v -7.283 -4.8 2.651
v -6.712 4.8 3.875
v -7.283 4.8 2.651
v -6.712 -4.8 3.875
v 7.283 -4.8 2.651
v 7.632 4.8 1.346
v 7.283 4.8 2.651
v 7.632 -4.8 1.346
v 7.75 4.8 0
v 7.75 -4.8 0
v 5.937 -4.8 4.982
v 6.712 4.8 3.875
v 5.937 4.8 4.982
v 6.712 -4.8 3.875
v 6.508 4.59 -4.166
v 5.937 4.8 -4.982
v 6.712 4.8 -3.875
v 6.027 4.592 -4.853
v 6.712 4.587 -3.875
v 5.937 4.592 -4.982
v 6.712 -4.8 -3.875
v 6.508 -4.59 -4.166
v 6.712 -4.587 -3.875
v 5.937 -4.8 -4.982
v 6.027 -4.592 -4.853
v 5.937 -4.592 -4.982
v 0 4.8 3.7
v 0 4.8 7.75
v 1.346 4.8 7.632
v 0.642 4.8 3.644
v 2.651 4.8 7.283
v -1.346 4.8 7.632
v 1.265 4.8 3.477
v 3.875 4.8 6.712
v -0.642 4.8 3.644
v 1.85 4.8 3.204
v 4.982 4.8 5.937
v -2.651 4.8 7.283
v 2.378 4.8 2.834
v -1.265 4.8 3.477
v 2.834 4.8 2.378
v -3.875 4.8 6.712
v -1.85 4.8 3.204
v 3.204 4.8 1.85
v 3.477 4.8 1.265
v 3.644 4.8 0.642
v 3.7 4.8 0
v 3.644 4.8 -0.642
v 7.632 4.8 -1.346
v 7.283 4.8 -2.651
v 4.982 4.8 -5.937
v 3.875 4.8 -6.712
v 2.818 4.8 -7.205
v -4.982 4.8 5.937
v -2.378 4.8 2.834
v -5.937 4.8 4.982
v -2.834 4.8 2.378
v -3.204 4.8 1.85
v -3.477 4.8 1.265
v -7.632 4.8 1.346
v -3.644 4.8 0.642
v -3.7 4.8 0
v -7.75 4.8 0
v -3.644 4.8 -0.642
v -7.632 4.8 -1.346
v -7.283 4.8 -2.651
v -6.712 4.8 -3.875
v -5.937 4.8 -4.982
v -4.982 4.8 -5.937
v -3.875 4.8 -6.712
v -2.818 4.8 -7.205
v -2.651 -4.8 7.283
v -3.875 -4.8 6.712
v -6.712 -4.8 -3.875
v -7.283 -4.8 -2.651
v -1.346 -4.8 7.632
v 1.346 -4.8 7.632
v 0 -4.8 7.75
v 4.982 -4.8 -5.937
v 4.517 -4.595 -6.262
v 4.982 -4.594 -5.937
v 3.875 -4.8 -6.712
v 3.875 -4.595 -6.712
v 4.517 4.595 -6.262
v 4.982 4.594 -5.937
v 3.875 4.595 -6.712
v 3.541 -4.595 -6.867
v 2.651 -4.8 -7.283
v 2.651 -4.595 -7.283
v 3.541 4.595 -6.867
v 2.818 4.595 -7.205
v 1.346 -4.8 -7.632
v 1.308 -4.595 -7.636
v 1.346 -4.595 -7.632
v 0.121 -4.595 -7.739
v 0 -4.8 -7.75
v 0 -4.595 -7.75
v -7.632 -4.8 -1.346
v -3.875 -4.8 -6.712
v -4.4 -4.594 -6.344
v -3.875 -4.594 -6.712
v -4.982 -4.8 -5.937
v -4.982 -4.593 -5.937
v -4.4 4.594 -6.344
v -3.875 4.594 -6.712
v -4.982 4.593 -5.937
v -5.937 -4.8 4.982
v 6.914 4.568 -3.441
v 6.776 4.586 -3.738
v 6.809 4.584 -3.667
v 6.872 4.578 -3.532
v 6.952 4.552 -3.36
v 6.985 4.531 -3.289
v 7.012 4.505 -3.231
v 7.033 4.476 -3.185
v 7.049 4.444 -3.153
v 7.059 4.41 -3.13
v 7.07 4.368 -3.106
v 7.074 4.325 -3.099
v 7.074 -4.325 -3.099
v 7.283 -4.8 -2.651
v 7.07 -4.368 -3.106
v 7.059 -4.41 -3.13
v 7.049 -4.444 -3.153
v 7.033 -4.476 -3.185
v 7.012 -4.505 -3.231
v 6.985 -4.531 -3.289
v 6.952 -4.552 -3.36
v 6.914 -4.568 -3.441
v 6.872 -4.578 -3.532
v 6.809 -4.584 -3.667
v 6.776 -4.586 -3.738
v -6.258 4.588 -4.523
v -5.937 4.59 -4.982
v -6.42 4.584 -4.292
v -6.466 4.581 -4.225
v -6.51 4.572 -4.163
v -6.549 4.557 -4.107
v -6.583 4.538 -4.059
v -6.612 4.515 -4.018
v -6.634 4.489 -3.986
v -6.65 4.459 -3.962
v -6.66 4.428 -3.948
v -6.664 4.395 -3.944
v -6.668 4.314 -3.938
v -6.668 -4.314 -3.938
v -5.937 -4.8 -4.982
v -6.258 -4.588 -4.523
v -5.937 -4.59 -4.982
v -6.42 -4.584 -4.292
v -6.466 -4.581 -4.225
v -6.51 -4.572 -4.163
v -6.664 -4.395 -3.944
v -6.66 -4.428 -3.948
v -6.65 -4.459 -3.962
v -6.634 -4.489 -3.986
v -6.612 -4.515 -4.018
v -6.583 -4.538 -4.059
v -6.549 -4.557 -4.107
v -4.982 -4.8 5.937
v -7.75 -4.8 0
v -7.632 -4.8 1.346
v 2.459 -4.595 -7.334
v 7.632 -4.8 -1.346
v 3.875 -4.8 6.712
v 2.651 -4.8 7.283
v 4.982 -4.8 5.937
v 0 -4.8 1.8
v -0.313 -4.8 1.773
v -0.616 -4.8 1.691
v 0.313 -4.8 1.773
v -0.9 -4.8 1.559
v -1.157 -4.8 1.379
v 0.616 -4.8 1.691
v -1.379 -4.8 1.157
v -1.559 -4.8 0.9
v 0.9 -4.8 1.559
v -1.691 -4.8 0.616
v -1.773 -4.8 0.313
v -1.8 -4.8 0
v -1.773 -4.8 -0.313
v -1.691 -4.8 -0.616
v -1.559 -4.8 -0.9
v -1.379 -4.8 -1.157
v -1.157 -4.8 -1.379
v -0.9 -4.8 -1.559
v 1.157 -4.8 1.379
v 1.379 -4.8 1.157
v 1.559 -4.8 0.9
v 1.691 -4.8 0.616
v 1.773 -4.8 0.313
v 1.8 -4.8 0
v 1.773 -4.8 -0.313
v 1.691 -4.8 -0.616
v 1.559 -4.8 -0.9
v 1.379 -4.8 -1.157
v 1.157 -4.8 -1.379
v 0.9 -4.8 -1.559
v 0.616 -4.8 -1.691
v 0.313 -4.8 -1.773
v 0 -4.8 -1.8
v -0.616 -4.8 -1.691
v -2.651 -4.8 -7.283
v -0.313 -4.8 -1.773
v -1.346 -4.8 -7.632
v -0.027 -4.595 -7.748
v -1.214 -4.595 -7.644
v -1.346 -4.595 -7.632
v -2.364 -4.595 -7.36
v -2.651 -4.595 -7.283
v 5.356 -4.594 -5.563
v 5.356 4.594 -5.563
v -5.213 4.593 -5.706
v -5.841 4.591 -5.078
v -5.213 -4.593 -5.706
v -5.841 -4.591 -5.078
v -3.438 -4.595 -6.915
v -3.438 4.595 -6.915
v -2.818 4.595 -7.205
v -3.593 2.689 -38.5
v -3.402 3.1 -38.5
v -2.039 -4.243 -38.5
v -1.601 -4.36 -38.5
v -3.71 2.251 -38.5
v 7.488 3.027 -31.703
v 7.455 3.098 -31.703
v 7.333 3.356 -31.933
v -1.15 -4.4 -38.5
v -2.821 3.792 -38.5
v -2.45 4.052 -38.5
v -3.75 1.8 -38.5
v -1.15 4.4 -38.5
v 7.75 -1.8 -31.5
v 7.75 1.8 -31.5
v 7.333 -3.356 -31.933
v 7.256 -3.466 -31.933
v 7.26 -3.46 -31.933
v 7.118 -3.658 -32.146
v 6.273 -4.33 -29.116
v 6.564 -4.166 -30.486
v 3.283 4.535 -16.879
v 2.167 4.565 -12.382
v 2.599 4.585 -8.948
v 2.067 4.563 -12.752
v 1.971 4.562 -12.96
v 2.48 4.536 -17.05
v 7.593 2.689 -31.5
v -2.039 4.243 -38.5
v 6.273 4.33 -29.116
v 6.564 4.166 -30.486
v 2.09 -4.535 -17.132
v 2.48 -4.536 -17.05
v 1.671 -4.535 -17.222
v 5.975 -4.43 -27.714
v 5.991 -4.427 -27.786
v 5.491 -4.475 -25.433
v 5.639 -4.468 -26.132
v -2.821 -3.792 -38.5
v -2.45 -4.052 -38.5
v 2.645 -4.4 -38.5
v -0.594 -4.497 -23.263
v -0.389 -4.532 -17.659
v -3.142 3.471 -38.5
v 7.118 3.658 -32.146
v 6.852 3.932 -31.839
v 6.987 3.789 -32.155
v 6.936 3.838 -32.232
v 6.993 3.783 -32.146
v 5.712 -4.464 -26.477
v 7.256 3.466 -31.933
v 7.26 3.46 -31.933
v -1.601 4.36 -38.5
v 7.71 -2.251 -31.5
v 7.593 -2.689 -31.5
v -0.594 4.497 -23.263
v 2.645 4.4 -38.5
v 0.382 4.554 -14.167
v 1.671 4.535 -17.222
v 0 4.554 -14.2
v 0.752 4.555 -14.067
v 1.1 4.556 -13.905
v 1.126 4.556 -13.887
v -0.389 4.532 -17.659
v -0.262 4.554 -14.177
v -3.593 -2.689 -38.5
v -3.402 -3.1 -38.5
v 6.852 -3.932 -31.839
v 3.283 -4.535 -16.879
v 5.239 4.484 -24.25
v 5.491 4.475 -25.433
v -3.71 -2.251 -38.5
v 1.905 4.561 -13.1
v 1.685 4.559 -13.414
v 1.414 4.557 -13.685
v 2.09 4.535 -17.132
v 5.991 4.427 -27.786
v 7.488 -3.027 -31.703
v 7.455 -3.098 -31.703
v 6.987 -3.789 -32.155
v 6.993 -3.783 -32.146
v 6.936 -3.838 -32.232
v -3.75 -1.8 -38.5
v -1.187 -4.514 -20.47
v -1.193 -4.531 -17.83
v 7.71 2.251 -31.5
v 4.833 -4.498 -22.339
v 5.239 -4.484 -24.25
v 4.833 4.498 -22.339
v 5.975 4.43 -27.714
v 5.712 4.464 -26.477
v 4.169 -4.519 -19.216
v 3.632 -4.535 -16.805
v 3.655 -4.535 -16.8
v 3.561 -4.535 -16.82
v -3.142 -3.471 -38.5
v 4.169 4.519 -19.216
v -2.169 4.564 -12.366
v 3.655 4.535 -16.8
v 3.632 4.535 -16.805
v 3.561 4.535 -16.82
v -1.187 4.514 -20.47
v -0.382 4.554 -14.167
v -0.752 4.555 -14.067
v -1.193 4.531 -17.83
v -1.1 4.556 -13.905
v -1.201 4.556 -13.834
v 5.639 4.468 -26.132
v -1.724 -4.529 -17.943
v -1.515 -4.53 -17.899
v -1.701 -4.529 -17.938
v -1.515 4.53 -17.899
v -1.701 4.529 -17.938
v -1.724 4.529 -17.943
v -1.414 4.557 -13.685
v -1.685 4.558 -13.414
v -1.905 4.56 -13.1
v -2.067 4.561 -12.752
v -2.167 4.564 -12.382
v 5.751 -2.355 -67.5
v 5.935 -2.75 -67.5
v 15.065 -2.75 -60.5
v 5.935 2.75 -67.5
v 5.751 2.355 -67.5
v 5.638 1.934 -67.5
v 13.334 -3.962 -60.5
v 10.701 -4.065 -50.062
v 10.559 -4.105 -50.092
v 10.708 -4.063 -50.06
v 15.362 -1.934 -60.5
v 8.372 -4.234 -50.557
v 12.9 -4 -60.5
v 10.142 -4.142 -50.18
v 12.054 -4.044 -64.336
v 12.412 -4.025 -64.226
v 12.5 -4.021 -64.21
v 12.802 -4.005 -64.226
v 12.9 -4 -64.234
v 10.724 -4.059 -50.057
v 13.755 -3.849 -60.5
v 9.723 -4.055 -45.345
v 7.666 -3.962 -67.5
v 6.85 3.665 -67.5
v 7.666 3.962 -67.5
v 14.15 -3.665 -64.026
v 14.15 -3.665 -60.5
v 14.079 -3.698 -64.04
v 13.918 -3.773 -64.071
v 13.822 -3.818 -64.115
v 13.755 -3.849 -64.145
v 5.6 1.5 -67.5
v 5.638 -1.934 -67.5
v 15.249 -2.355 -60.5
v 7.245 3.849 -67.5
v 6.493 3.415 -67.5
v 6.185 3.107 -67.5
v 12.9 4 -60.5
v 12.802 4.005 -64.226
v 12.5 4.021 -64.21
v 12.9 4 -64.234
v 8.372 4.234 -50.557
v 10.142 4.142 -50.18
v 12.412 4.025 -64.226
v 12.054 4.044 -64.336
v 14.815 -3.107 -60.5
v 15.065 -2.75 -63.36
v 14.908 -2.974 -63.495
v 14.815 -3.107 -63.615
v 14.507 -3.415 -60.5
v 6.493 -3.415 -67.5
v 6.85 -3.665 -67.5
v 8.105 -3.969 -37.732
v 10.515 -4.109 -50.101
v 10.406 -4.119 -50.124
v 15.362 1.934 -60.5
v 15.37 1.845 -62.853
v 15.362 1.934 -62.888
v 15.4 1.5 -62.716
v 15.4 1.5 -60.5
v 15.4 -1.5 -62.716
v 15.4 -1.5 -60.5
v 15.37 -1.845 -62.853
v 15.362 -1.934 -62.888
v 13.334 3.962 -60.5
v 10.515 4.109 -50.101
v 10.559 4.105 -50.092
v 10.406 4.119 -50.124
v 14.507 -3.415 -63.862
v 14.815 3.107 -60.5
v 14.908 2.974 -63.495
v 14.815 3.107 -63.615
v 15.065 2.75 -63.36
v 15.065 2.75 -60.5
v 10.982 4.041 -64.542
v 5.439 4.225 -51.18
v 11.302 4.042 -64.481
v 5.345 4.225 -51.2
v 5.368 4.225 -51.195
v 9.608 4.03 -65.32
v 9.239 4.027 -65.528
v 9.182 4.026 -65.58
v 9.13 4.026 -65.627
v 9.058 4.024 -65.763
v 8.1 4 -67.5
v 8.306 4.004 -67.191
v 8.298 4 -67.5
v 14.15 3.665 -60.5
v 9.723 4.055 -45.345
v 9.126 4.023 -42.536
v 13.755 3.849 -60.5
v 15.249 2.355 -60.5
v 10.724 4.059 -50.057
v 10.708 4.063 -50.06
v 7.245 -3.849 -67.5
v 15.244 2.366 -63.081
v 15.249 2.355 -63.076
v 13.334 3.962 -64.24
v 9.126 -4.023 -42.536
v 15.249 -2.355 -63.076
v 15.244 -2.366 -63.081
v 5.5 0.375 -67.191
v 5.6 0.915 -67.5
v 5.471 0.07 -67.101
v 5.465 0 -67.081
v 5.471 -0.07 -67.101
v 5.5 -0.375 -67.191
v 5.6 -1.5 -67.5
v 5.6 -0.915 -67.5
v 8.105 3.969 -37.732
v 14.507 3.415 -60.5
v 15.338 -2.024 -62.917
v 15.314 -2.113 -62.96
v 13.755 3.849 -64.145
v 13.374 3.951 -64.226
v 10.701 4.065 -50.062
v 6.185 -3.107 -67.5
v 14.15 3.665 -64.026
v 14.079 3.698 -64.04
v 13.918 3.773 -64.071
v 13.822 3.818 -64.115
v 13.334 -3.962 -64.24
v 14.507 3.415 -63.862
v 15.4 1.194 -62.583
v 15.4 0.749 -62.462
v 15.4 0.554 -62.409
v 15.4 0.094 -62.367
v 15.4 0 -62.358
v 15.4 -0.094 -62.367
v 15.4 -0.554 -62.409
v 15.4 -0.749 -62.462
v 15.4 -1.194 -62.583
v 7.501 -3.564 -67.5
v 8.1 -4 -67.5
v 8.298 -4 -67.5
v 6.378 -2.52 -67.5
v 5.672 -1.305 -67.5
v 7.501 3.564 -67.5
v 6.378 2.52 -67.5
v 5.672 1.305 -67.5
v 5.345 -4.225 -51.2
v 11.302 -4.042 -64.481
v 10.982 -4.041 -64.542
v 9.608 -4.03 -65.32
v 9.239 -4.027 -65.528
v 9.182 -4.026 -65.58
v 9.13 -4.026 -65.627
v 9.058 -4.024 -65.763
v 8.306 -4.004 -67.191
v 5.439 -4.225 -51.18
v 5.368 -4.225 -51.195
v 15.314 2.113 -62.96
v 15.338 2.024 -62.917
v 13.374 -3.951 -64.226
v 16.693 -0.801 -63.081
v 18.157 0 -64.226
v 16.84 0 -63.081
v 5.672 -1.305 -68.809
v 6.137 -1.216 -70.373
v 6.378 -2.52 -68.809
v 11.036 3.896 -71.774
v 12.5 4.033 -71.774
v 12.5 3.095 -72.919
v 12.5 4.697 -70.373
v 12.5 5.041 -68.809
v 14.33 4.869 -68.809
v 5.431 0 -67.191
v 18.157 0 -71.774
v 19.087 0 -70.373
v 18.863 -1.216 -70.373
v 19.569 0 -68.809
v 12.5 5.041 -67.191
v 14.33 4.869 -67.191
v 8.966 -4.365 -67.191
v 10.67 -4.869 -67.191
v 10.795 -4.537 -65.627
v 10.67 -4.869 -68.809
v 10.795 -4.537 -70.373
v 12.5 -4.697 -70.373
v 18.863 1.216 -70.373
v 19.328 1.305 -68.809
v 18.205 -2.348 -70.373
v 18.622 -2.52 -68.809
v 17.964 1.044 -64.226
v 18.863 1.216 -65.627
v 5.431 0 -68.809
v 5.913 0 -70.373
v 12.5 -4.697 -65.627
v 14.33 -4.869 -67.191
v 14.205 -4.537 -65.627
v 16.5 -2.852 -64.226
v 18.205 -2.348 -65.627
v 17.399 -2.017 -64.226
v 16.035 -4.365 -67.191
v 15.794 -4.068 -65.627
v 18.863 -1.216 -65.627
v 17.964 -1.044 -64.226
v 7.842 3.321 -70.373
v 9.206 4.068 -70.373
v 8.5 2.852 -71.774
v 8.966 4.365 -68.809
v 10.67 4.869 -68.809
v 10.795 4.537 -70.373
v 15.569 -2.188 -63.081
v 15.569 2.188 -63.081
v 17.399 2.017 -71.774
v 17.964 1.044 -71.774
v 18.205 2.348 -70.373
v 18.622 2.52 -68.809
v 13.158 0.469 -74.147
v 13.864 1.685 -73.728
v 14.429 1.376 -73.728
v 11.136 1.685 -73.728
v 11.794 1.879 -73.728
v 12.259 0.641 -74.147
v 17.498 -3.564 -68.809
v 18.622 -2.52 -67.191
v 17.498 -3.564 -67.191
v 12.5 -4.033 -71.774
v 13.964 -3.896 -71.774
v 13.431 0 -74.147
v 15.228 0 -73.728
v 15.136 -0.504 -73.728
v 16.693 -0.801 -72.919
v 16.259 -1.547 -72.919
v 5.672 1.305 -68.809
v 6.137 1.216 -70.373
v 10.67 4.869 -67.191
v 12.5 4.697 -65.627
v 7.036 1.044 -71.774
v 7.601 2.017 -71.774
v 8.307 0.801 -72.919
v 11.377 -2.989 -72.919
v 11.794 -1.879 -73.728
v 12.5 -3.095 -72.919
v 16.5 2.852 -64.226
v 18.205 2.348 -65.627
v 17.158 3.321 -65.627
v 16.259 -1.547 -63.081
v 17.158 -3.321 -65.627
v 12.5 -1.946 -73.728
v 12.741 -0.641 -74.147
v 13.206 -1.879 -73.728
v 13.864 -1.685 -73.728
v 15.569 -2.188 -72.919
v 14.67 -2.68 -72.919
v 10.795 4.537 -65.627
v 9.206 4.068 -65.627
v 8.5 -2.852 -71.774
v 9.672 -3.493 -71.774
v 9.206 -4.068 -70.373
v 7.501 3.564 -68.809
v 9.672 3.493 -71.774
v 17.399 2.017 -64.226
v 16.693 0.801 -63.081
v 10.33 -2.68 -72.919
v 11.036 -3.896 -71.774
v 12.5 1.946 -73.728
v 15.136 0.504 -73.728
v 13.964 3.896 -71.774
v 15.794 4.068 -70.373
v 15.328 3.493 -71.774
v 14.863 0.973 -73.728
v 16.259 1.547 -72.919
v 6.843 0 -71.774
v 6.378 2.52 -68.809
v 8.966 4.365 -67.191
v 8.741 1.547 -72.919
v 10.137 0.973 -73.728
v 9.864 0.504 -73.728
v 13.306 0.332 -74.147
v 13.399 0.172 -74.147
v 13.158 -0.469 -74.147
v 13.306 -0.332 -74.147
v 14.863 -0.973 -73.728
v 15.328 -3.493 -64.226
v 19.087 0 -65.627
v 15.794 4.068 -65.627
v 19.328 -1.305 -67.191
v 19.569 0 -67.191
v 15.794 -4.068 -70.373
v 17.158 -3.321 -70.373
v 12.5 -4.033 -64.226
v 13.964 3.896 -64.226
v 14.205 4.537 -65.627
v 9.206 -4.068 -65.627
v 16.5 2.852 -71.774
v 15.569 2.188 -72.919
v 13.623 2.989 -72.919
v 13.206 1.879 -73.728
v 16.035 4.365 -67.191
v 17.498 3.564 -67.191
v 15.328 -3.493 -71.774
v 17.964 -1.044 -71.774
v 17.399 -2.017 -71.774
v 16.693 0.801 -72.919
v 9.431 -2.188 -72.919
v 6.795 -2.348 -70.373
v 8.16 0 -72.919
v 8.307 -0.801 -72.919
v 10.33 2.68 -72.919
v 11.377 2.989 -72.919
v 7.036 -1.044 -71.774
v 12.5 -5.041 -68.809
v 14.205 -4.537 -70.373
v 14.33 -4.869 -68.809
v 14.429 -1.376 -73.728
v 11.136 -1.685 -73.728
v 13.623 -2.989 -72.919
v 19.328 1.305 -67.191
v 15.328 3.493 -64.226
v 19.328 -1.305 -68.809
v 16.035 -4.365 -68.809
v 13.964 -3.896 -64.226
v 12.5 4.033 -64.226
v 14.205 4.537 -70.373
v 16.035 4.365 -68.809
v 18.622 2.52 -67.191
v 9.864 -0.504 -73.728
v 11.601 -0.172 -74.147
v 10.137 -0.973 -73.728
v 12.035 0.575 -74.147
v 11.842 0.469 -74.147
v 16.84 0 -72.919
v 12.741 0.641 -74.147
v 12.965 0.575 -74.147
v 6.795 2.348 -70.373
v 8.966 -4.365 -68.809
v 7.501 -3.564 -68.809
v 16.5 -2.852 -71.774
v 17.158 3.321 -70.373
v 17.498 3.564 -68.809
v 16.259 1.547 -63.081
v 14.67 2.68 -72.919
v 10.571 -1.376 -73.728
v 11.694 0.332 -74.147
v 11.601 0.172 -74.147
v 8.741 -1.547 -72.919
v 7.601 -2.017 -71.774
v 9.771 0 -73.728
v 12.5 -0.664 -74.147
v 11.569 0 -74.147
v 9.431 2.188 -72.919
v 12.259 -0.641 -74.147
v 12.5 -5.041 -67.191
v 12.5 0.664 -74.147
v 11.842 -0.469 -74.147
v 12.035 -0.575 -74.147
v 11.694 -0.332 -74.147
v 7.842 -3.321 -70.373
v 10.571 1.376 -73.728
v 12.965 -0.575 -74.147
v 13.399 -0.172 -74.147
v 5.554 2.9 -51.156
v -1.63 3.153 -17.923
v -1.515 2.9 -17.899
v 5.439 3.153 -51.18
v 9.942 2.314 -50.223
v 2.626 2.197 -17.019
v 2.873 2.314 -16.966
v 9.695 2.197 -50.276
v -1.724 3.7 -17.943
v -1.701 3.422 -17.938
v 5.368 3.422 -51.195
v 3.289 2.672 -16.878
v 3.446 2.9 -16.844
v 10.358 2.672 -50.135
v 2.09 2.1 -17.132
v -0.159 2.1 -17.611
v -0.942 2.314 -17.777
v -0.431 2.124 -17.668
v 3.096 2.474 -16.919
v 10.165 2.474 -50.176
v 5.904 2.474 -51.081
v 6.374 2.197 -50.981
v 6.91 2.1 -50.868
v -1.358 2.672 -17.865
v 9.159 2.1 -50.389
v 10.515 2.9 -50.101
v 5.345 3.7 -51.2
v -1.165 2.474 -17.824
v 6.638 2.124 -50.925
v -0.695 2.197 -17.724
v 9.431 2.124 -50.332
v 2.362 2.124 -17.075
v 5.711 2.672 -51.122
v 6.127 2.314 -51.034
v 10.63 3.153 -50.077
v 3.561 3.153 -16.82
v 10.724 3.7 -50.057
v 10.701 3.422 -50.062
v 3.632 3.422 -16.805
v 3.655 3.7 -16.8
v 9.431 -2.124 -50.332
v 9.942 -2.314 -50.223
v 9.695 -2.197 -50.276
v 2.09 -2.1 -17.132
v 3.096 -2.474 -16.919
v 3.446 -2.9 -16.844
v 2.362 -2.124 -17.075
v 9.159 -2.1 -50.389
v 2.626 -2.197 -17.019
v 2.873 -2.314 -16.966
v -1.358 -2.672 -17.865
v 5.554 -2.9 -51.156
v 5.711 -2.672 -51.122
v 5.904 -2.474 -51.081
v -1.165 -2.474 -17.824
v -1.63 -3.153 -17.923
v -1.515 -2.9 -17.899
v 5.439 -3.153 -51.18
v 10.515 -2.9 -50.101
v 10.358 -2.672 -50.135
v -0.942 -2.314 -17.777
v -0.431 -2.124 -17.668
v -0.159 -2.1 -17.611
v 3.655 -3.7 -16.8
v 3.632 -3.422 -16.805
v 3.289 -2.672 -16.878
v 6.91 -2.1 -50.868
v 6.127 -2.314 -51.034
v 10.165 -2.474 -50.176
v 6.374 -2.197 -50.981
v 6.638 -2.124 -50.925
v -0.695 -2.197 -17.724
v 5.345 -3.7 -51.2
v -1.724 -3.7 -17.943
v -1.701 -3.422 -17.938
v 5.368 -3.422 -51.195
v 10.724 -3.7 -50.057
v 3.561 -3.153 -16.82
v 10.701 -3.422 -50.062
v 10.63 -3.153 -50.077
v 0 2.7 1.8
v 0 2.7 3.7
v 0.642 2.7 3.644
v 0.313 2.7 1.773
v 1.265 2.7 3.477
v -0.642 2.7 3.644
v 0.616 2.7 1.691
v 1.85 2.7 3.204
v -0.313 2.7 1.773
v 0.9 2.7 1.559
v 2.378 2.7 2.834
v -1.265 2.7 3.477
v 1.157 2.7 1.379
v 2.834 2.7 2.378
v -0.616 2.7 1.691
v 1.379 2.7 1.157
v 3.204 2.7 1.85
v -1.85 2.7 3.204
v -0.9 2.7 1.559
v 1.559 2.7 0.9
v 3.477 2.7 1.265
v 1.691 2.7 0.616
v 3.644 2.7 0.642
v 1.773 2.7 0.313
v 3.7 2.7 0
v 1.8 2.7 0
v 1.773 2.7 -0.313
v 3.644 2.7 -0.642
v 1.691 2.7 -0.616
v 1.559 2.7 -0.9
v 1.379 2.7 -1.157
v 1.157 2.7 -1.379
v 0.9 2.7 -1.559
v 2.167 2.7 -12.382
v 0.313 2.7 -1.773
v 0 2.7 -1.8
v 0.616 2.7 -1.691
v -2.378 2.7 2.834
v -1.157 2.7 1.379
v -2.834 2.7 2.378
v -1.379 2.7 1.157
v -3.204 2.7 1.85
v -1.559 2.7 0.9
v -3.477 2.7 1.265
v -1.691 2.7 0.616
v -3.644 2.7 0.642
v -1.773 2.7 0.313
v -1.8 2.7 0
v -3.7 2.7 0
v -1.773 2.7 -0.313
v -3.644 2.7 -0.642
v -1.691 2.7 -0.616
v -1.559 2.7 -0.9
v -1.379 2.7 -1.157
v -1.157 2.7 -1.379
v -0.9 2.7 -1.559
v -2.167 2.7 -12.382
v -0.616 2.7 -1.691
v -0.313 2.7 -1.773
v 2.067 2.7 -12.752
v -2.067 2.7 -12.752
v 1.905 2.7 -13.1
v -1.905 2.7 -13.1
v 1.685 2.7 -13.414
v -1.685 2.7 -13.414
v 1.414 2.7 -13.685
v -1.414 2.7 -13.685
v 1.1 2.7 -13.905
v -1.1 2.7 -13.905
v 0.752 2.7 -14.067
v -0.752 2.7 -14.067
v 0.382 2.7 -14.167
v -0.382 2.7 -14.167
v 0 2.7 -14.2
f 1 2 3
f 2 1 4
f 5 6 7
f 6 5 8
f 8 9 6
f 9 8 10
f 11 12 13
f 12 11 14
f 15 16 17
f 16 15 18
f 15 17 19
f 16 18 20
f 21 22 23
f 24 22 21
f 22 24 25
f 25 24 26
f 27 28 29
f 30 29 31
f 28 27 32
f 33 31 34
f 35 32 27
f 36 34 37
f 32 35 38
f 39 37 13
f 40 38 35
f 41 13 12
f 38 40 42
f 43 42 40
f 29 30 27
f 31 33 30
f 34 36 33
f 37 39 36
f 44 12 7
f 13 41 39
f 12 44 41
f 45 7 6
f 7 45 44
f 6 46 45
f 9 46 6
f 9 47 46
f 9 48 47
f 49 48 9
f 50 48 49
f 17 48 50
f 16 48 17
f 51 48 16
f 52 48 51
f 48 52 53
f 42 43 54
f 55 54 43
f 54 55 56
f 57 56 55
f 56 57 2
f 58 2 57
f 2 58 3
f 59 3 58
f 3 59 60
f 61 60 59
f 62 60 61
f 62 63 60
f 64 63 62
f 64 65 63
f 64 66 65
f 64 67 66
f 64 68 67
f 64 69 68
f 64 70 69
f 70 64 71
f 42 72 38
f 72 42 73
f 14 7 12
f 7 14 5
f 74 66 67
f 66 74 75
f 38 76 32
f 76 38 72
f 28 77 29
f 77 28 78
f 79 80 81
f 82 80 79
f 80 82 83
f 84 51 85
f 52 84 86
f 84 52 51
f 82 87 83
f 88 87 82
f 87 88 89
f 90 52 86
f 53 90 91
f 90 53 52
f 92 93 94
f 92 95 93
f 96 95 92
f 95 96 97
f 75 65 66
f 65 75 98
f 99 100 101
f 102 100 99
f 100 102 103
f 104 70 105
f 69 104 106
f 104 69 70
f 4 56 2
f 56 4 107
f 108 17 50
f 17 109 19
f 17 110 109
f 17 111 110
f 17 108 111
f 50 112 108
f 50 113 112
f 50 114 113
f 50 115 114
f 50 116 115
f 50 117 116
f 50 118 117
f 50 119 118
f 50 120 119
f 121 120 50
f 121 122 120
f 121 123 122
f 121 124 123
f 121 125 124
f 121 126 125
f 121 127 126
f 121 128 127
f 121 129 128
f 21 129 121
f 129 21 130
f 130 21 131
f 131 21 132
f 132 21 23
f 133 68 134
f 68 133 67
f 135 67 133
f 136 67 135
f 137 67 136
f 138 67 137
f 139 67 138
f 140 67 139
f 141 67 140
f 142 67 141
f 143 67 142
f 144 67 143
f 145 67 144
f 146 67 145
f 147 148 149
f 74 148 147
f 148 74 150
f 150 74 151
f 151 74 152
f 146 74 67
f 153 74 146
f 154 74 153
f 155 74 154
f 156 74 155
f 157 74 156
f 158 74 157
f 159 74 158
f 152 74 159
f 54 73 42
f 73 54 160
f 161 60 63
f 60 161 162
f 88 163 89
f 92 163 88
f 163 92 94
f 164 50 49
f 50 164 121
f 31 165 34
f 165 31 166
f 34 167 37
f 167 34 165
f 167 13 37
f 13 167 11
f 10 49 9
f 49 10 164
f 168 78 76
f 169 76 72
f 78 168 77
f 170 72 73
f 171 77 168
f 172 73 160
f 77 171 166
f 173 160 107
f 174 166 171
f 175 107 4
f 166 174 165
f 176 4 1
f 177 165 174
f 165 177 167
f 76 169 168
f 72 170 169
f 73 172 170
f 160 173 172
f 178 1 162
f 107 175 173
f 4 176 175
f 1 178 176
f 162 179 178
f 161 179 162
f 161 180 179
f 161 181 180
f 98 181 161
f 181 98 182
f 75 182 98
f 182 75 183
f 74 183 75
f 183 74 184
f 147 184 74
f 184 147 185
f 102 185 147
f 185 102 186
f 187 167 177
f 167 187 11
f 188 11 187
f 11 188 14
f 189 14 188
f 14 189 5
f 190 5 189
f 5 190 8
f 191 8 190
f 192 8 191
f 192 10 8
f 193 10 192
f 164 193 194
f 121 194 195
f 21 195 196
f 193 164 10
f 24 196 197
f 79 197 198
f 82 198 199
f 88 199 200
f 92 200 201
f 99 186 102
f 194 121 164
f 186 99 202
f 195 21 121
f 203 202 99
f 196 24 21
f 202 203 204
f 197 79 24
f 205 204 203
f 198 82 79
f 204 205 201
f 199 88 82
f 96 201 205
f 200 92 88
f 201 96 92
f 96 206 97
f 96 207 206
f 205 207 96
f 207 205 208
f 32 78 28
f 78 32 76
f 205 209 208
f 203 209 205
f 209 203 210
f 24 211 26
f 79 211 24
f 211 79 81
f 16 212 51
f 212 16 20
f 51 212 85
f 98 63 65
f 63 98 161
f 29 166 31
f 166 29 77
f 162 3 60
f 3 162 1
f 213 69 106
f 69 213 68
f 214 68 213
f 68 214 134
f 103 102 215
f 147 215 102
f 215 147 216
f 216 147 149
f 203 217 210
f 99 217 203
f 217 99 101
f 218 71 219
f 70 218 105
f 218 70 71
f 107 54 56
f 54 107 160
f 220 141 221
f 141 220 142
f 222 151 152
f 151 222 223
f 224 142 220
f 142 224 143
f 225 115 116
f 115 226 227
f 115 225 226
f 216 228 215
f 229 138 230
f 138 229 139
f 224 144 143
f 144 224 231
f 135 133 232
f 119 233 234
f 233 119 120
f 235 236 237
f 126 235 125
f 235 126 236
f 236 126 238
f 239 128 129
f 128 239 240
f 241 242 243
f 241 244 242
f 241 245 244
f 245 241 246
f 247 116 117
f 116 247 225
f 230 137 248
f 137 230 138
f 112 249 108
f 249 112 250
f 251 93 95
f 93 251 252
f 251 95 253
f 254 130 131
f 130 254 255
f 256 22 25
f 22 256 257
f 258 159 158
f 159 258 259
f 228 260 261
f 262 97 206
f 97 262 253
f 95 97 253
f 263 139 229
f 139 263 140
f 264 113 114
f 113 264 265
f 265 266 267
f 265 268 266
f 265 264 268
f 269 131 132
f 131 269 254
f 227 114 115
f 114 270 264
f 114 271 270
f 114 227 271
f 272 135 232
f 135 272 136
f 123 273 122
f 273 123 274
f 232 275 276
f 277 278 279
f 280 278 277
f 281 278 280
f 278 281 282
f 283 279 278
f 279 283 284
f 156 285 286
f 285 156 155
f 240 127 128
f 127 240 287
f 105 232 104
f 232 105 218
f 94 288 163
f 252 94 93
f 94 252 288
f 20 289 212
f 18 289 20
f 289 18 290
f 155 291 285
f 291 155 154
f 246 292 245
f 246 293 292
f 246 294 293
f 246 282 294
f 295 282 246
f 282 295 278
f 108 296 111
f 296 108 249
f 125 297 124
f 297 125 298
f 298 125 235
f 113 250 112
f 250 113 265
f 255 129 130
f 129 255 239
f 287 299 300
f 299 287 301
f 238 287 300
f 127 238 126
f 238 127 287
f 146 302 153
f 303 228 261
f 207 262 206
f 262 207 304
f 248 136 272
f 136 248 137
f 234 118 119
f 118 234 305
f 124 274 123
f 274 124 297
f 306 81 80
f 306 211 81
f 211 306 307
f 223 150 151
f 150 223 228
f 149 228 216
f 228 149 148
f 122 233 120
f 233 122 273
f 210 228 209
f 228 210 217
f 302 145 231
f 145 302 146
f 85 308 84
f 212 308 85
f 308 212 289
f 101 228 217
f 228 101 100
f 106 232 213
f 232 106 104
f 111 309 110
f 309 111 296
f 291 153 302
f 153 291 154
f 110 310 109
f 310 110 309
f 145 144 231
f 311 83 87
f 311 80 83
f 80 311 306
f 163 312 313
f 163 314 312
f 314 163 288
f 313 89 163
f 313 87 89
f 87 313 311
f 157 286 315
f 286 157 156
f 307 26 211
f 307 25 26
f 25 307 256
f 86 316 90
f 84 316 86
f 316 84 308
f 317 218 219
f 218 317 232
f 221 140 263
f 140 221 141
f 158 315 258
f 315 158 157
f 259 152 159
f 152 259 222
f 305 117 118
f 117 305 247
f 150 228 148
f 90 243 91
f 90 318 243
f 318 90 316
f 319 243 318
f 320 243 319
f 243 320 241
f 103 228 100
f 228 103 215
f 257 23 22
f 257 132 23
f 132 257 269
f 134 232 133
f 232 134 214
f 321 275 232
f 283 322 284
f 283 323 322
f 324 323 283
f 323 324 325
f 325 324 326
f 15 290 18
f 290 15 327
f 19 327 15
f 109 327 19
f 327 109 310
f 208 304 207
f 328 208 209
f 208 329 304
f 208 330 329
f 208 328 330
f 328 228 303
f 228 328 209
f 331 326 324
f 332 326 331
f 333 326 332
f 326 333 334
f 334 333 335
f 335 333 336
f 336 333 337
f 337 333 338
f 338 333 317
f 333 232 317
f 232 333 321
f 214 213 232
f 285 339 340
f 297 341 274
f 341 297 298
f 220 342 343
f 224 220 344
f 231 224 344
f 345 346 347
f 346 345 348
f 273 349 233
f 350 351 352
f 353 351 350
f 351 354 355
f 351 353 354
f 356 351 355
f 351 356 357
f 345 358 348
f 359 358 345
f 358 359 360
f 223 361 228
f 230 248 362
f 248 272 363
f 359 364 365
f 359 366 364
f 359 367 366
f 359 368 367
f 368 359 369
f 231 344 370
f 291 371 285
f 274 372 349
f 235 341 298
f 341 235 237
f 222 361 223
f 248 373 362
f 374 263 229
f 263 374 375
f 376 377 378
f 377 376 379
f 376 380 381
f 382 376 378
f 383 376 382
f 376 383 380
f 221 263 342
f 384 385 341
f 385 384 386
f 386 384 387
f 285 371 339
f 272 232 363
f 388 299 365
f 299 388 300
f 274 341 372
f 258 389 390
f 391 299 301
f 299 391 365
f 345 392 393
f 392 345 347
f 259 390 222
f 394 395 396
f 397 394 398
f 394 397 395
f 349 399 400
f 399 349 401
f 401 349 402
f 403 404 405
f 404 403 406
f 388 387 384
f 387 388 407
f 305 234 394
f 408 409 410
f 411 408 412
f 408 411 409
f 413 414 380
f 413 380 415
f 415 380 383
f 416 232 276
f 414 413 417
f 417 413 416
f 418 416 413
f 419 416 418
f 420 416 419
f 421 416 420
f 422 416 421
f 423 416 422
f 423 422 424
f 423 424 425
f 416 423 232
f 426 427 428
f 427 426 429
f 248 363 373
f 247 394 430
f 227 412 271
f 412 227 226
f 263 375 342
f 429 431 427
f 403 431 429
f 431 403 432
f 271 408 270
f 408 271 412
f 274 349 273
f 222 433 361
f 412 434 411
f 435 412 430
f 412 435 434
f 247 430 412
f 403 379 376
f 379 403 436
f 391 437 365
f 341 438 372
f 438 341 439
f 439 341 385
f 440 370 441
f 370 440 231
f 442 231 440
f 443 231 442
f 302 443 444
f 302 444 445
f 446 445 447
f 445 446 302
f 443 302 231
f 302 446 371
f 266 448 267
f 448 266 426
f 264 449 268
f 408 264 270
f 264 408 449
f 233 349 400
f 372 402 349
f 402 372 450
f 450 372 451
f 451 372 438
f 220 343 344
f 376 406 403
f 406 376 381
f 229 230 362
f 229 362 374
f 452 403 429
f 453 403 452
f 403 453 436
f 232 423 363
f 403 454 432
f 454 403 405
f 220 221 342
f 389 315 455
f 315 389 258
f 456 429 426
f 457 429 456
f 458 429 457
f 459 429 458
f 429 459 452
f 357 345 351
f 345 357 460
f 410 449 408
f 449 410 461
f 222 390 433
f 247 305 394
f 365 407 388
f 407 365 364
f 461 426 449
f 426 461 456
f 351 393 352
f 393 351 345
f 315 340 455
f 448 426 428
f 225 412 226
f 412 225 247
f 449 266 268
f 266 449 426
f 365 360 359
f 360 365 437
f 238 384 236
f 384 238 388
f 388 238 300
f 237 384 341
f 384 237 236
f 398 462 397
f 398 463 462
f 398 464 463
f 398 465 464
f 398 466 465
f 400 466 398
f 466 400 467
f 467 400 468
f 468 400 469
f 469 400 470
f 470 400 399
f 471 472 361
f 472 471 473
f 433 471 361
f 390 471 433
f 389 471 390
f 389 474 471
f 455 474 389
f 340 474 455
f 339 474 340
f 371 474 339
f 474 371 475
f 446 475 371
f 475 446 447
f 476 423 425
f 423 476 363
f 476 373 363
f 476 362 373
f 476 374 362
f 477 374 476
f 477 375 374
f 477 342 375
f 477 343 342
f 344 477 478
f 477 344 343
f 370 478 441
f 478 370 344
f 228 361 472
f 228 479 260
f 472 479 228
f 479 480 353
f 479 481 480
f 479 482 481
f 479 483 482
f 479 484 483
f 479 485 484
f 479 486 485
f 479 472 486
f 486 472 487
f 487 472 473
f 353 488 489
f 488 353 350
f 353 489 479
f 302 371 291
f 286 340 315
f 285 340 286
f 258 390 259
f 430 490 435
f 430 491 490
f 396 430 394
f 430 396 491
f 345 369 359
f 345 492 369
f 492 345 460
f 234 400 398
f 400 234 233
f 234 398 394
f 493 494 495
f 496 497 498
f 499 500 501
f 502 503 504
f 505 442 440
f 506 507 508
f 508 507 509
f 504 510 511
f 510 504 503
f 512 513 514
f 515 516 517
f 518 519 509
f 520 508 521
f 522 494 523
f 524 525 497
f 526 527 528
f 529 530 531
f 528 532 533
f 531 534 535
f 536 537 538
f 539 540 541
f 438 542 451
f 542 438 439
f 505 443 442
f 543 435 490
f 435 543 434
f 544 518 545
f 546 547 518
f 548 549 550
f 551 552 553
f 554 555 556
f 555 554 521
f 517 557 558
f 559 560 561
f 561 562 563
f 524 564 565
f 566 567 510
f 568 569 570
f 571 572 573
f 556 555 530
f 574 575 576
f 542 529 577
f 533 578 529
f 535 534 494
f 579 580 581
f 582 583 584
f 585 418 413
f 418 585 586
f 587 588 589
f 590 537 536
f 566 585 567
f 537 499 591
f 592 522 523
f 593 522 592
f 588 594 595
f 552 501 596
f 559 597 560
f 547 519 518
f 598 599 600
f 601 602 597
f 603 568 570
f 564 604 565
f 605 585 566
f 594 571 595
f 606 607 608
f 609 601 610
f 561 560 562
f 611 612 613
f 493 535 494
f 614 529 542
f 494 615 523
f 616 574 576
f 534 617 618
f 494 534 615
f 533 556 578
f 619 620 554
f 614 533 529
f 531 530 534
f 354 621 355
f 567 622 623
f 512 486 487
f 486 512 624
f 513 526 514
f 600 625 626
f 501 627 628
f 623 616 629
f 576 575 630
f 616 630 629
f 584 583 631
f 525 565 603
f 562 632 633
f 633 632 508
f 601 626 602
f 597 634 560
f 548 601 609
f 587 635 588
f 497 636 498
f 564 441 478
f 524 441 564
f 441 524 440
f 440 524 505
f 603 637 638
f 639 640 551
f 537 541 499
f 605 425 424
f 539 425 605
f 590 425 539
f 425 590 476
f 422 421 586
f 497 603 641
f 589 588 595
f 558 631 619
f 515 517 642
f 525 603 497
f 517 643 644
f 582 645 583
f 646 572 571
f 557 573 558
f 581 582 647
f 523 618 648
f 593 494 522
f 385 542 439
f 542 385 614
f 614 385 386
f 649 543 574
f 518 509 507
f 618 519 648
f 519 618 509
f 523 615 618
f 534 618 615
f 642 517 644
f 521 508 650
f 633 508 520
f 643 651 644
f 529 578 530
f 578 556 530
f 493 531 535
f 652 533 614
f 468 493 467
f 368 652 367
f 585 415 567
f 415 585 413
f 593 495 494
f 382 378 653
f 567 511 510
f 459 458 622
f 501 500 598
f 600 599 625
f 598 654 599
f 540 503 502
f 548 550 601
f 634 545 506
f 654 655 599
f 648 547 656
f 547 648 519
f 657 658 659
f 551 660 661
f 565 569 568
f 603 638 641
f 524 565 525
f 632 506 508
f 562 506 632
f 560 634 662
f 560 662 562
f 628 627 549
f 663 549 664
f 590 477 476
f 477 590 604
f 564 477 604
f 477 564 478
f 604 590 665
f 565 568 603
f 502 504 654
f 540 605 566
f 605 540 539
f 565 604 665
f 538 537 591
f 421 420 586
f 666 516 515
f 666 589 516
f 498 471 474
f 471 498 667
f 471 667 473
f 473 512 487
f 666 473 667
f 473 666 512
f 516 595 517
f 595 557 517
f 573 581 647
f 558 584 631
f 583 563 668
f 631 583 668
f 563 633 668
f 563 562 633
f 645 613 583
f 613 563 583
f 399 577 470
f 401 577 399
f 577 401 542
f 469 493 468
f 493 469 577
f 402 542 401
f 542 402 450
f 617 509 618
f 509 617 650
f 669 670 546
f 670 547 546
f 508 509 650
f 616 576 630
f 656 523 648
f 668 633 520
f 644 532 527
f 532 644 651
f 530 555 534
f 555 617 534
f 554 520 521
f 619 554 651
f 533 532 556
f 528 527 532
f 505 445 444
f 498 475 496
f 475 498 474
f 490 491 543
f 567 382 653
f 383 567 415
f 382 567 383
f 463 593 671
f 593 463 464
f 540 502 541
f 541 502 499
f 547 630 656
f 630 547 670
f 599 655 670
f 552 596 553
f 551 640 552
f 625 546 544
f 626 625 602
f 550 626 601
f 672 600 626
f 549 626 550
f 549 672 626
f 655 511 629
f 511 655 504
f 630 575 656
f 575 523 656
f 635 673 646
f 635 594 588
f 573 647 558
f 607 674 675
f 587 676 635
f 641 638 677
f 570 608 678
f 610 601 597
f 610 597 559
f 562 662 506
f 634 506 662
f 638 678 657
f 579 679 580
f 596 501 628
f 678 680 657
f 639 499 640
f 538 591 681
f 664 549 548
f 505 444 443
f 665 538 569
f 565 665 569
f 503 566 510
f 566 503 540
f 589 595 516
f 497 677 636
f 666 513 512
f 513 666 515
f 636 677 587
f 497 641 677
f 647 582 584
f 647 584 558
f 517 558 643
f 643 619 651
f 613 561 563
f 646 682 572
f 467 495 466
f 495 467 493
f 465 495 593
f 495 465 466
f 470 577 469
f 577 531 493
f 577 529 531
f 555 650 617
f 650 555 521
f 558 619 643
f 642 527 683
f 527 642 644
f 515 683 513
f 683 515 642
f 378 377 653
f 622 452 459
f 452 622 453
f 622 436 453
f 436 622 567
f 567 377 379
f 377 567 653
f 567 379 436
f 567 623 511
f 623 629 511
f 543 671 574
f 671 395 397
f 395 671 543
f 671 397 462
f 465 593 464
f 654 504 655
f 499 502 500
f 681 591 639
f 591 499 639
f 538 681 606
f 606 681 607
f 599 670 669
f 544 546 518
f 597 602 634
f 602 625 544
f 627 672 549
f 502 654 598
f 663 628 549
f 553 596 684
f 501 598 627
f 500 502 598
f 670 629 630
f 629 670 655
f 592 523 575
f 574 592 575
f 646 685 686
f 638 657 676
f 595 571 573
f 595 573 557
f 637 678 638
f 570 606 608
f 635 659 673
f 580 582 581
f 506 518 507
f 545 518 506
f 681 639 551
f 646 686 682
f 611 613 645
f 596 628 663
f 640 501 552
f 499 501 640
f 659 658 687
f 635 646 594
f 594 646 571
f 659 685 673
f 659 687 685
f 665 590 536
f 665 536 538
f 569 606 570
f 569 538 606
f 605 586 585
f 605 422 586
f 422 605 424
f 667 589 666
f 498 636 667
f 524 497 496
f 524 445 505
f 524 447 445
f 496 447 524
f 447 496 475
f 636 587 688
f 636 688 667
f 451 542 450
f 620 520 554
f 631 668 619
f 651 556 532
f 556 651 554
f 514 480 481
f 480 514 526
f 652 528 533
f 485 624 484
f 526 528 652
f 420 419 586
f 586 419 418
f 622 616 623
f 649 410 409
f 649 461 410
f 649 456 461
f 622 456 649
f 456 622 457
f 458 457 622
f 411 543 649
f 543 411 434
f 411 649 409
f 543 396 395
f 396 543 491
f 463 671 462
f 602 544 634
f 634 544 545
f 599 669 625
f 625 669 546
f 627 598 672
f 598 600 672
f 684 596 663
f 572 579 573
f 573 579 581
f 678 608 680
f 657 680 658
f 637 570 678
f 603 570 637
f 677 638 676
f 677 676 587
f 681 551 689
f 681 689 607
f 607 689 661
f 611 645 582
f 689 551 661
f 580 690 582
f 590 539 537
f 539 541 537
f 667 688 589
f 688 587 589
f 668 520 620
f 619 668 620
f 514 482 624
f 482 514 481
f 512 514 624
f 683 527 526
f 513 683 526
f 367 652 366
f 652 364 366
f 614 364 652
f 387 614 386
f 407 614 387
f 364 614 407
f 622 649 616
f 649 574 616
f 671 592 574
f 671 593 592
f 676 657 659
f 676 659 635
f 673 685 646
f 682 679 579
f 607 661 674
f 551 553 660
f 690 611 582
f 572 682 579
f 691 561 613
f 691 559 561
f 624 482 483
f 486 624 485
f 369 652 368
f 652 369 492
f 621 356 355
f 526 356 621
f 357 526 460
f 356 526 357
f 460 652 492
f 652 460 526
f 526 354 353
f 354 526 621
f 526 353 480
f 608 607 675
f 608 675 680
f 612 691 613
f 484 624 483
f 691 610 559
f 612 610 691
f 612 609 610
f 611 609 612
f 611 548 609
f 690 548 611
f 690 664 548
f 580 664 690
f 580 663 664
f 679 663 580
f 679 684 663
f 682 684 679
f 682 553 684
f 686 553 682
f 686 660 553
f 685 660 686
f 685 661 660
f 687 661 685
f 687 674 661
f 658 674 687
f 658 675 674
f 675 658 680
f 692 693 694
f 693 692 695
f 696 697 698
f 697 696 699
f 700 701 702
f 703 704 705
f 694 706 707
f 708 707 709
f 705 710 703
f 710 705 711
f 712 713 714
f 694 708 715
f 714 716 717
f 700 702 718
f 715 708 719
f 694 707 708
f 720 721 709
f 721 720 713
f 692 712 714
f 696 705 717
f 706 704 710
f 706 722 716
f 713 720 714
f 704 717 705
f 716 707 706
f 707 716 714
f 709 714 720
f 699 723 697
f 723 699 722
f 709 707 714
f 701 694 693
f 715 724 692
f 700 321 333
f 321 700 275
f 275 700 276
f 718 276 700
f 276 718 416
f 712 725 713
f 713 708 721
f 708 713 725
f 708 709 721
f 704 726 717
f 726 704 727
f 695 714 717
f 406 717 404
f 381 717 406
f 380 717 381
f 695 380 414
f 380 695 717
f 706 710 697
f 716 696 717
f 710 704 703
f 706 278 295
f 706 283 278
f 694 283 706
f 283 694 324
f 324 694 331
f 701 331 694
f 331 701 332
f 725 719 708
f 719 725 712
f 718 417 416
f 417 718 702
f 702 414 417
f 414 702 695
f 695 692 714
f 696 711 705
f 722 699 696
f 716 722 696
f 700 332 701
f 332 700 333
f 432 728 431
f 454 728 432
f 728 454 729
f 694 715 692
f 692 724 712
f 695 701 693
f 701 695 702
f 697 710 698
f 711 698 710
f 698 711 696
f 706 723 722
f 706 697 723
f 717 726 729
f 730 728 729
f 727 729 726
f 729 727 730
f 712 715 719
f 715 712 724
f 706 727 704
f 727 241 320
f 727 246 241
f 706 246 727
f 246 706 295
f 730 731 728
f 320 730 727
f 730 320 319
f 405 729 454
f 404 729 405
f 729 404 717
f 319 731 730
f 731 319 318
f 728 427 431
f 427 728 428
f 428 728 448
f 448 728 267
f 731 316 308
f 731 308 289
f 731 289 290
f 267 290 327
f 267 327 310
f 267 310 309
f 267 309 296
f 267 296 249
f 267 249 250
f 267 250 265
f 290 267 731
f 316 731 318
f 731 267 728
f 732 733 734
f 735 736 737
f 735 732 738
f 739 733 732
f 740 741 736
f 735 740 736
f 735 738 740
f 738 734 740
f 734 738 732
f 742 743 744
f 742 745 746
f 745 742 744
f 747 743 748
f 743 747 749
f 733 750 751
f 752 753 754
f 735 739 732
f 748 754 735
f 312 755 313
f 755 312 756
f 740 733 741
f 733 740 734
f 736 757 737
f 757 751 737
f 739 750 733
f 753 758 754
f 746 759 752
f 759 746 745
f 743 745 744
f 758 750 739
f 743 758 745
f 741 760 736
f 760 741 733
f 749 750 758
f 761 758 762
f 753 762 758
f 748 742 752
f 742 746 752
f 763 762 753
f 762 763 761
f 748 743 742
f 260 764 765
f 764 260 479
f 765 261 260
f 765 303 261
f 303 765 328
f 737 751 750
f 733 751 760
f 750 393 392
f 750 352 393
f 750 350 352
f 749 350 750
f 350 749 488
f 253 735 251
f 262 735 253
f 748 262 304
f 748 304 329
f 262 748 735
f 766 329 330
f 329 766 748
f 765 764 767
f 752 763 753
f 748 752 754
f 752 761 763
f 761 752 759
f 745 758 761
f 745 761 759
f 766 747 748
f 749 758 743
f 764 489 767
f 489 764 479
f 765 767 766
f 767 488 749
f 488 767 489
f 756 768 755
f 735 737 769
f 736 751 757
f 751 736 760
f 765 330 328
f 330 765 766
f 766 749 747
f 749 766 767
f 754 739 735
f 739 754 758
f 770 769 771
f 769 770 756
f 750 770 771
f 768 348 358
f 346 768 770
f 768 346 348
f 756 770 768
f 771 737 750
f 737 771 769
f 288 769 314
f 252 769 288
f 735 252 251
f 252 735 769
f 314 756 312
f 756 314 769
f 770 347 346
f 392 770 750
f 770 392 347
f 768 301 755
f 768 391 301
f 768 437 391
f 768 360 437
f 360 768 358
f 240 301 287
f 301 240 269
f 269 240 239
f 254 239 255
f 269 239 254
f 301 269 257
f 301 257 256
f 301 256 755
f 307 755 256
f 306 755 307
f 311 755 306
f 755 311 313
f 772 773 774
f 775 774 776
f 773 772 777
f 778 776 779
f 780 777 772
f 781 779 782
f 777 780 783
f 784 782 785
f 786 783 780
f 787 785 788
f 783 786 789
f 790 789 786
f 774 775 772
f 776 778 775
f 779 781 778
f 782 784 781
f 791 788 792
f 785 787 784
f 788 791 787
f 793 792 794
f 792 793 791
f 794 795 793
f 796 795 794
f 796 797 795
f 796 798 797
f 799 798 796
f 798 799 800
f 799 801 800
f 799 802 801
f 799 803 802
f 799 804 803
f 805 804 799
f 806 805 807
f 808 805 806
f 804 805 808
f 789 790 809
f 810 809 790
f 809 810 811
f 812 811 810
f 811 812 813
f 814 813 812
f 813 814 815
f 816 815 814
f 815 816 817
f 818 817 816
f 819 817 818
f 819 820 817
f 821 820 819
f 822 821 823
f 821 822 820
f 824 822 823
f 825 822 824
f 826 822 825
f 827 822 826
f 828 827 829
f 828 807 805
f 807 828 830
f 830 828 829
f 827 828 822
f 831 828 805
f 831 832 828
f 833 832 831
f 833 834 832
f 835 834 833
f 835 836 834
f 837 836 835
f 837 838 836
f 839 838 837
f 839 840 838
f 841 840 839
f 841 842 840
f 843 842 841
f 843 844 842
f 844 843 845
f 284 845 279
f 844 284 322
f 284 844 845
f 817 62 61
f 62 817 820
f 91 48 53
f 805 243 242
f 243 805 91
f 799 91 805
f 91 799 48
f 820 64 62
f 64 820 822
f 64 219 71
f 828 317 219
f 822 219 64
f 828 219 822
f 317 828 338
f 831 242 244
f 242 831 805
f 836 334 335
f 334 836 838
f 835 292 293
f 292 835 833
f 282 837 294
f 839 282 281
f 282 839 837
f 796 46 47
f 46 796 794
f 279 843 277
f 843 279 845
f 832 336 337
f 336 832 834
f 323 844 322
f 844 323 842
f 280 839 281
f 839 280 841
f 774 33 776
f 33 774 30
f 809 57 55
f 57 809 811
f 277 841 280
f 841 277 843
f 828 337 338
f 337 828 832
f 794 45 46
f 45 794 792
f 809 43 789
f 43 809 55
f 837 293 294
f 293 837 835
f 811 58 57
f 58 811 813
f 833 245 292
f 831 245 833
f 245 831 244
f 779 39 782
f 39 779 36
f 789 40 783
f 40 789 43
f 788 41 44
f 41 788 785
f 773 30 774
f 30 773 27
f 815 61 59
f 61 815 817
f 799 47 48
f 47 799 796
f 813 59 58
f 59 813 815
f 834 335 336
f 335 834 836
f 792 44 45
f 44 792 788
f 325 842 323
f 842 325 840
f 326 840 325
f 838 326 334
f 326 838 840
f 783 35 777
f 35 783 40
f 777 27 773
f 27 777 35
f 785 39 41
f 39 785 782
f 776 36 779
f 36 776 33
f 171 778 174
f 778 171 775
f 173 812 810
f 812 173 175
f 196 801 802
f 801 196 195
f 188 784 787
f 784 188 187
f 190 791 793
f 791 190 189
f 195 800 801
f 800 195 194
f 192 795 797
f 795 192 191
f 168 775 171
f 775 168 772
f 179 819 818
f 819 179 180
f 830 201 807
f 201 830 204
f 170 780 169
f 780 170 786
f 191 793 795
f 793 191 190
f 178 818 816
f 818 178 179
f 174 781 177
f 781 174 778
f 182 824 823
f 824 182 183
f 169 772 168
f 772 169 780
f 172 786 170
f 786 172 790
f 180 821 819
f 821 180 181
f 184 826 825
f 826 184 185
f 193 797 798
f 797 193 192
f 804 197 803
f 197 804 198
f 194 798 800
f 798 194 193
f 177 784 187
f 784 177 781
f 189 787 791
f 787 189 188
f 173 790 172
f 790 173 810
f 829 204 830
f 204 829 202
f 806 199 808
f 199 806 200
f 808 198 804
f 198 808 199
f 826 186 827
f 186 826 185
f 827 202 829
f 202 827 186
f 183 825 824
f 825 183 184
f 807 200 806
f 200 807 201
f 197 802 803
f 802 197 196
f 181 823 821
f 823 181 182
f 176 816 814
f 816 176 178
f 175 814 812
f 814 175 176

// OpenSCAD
// file: ../rnv1_params.scad
// RNV1 (Robotic Neural Vector 1) - Master Parametric Mechanical Specification
// Units: millimeters (mm)
// Coordinate Frame: +X Forward, +Y Left, +Z Up (Standing Neutral Pose, Floor = Z=0)

$fn = 36;

// --- FDM 3D Print Engineering Tolerances (0.4mm nozzle, PETG / PLA+) ---
WALL_T       = 2.0;    // Primary structural wall thickness (>= 1.6mm requirement)
RIB_T        = 1.8;    // Structural stiffening rib thickness
CLEARANCE    = 0.25;   // Standard FDM press/slip fit clearance
M2_PILOT_D   = 1.75;   // M2 self-tapping pilot hole diameter
M2_CLEAR_D   = 2.3;    // M2 through clearance hole diameter
PIVOT_BOSS_D = 4.0;    // Dual-shear opposing coaxial pivot pin diameter

// --- MG90S Metal-Gear Micro Servo Envelope (TowerPro/Generic standard) ---
MG90S_L      = 22.8;   // Body length along flange axis
MG90S_W      = 12.2;   // Body width
MG90S_H      = 28.5;   // Total housing height (bottom to top gear dome)
MG90S_FLANGE_L = 32.2; // Mounting ear span
MG90S_HOLE_DX  = 27.6; // Mounting hole center-to-center
MG90S_SHAFT_OFF = 5.9; // Output shaft offset from end of 22.8mm body

// --- SG90 9g Micro Servo Envelope ---
SG90_L       = 22.5;
SG90_W       = 12.0;
SG90_H       = 22.5;

// --- Master Kinematic Skeleton Coordinates (mm, Z from Floor = 0) ---
SOLE_PAD_H   = 2.0;    // 2mm silicone anti-slip pad (1mm recessed)
FOOT_L       = 72.0;   // X: -32mm heel to +40mm toe
FOOT_HEEL_X  = -32.0;
FOOT_TOE_X   = 40.0;
FOOT_W       = 46.0;   // Y width per foot
FOOT_PLATE_H = 6.5;    // Rigid foot sole plate thickness

FOOT_Y_CTR   = 26.0;   // Left=+26mm, Right=-26mm (6mm gap between inner edges!)
HIP_ROLL_Y   = 23.0;   // Left=+23mm, Right=-23mm

Z_ANKLE_ROLL = 18.0;   // Ankle roll axis height
Z_KNEE_PITCH = 62.0;   // Knee pitch axis height  (L_shin = 44.0mm)
Z_HIP_PITCH  = 106.0;  // Hip pitch axis height   (L_thigh = 44.0mm)
Z_HIP_ROLL   = 124.0;  // Hip roll axis height    (dZ = 18.0mm)

L_SHIN       = Z_KNEE_PITCH - Z_ANKLE_ROLL; // 44.0 mm
L_THIGH      = Z_HIP_PITCH - Z_KNEE_PITCH;  // 44.0 mm
L_HIP_CLEVIS = Z_HIP_ROLL - Z_HIP_PITCH;    // 18.0 mm

// --- Torso & Pelvis Envelope ---
TORSO_Z_BOT  = 116.0;
TORSO_Z_TOP  = 184.0;
TORSO_H      = TORSO_Z_TOP - TORSO_Z_BOT;   // 68.0 mm
TORSO_W      = 80.0;   // Y: -40 to +40mm
TORSO_D      = 54.0;   // X: -27 to +27mm

// --- Arms ---
SHOULDER_Y   = 46.0;   // Left=+46mm, Right=-46mm
SHOULDER_Z   = 170.0;
ARM_LEN      = 72.0;   // Shoulder to palm tip

// --- 2-DOF Active Spatial Head ---
Z_HEAD_YAW   = 188.0;  // Pan axis Z
Z_HEAD_PITCH = 204.0;  // Tilt axis Z
HEAD_W       = 58.0;   // Y width
HEAD_D       = 44.0;   // X depth
HEAD_H       = 42.0;   // Z height (Z = 196..238mm -> Total Robot Height = 238mm)
HEAD_Z_CTR   = 217.0;

// --- Utility Rounded Box Module ---
module rbox(size, r=2.0, center=true) {
    sx = size[0]; sy = size[1]; sz = size[2];
    rc = min(r, sx/2 - 0.1, sy/2 - 0.1, sz/2 - 0.1);
    translate(center ? [0,0,0] : [sx/2, sy/2, sz/2])
    hull() {
        for (dx = [-sx/2 + rc, sx/2 - rc])
        for (dy = [-sy/2 + rc, sy/2 - rc])
        for (dz = [-sz/2 + rc, sz/2 - rc])
            translate([dx, dy, dz]) sphere(r=rc, $fn=16);
    }
}

module rbox_xy(size, r=2.5, center=true) {
    sx = size[0]; sy = size[1]; sz = size[2];
    rc = min(r, sx/2 - 0.1, sy/2 - 0.1);
    translate(center ? [0,0,0] : [sx/2, sy/2, sz/2])
    linear_extrude(height=sz, center=true)
    offset(r=rc) offset(r=-rc)
        square([sx, sy], center=true);
}
// file: arm_link.scad
// RNV1 Part: Lightweight Ribbed Sculpted Humanoid Arm Link (~5.2g each)
include <../rnv1_params.scad>

module arm_link() {
    difference() {
        union() {
            // Shoulder hub
            rotate([90, 0, 0])
                cylinder(d=15.5, h=9.6, center=true);

            // Upper arm tapered strut (Z = 0 to -35mm)
            hull() {
                rotate([90, 0, 0])
                    cylinder(d=14.0, h=9.2, center=true);
                translate([2.0, 0, -35.0])
                    rbox_xy([11.5, 8.8, 7.0], r=2.6, center=true);
            }

            // Forearm ergonomic 15-deg forward curve (Z = -35 to -65mm)
            hull() {
                translate([2.0, 0, -35.0])
                    rbox_xy([11.5, 8.8, 7.0], r=2.6, center=true);
                translate([10.5, 0, -64.0])
                    rbox_xy([9.8, 8.0, 7.0], r=2.5, center=true);
            }

            // Rounded tactile palm bumper
            translate([12.5, 0, -68.0])
                scale([1.15, 0.82, 1.0])
                    sphere(r=6.2, $fn=24);
        }

        // MG90S Horn Recess Pocket on inner shoulder face
        translate([0, -4.0, 0])
            rotate([90, 0, 0])
                hull() {
                    cylinder(d=7.4, h=2.6, center=true);
                    translate([0, -12.0, 0]) cylinder(d=4.4, h=2.6, center=true);
                }
        rotate([90, 0, 0])
            cylinder(d=3.6, h=14.0, center=true);

        // Dual-side I-beam weight-relief pockets along arm
        for (sy = [-4.2, 4.2]) {
            translate([4.5, sy, -34.0])
                rotate([0, -12, 0])
                    rbox_xy([5.5, 4.2, 34.0], r=1.6, center=true);
        }
    }
}

arm_link();
// main file
// RNV1 Part: Right Arm Link (exact mirror of left arm link along Y)
use <arm_link.scad>
mirror([0, 1, 0]) arm_link();
